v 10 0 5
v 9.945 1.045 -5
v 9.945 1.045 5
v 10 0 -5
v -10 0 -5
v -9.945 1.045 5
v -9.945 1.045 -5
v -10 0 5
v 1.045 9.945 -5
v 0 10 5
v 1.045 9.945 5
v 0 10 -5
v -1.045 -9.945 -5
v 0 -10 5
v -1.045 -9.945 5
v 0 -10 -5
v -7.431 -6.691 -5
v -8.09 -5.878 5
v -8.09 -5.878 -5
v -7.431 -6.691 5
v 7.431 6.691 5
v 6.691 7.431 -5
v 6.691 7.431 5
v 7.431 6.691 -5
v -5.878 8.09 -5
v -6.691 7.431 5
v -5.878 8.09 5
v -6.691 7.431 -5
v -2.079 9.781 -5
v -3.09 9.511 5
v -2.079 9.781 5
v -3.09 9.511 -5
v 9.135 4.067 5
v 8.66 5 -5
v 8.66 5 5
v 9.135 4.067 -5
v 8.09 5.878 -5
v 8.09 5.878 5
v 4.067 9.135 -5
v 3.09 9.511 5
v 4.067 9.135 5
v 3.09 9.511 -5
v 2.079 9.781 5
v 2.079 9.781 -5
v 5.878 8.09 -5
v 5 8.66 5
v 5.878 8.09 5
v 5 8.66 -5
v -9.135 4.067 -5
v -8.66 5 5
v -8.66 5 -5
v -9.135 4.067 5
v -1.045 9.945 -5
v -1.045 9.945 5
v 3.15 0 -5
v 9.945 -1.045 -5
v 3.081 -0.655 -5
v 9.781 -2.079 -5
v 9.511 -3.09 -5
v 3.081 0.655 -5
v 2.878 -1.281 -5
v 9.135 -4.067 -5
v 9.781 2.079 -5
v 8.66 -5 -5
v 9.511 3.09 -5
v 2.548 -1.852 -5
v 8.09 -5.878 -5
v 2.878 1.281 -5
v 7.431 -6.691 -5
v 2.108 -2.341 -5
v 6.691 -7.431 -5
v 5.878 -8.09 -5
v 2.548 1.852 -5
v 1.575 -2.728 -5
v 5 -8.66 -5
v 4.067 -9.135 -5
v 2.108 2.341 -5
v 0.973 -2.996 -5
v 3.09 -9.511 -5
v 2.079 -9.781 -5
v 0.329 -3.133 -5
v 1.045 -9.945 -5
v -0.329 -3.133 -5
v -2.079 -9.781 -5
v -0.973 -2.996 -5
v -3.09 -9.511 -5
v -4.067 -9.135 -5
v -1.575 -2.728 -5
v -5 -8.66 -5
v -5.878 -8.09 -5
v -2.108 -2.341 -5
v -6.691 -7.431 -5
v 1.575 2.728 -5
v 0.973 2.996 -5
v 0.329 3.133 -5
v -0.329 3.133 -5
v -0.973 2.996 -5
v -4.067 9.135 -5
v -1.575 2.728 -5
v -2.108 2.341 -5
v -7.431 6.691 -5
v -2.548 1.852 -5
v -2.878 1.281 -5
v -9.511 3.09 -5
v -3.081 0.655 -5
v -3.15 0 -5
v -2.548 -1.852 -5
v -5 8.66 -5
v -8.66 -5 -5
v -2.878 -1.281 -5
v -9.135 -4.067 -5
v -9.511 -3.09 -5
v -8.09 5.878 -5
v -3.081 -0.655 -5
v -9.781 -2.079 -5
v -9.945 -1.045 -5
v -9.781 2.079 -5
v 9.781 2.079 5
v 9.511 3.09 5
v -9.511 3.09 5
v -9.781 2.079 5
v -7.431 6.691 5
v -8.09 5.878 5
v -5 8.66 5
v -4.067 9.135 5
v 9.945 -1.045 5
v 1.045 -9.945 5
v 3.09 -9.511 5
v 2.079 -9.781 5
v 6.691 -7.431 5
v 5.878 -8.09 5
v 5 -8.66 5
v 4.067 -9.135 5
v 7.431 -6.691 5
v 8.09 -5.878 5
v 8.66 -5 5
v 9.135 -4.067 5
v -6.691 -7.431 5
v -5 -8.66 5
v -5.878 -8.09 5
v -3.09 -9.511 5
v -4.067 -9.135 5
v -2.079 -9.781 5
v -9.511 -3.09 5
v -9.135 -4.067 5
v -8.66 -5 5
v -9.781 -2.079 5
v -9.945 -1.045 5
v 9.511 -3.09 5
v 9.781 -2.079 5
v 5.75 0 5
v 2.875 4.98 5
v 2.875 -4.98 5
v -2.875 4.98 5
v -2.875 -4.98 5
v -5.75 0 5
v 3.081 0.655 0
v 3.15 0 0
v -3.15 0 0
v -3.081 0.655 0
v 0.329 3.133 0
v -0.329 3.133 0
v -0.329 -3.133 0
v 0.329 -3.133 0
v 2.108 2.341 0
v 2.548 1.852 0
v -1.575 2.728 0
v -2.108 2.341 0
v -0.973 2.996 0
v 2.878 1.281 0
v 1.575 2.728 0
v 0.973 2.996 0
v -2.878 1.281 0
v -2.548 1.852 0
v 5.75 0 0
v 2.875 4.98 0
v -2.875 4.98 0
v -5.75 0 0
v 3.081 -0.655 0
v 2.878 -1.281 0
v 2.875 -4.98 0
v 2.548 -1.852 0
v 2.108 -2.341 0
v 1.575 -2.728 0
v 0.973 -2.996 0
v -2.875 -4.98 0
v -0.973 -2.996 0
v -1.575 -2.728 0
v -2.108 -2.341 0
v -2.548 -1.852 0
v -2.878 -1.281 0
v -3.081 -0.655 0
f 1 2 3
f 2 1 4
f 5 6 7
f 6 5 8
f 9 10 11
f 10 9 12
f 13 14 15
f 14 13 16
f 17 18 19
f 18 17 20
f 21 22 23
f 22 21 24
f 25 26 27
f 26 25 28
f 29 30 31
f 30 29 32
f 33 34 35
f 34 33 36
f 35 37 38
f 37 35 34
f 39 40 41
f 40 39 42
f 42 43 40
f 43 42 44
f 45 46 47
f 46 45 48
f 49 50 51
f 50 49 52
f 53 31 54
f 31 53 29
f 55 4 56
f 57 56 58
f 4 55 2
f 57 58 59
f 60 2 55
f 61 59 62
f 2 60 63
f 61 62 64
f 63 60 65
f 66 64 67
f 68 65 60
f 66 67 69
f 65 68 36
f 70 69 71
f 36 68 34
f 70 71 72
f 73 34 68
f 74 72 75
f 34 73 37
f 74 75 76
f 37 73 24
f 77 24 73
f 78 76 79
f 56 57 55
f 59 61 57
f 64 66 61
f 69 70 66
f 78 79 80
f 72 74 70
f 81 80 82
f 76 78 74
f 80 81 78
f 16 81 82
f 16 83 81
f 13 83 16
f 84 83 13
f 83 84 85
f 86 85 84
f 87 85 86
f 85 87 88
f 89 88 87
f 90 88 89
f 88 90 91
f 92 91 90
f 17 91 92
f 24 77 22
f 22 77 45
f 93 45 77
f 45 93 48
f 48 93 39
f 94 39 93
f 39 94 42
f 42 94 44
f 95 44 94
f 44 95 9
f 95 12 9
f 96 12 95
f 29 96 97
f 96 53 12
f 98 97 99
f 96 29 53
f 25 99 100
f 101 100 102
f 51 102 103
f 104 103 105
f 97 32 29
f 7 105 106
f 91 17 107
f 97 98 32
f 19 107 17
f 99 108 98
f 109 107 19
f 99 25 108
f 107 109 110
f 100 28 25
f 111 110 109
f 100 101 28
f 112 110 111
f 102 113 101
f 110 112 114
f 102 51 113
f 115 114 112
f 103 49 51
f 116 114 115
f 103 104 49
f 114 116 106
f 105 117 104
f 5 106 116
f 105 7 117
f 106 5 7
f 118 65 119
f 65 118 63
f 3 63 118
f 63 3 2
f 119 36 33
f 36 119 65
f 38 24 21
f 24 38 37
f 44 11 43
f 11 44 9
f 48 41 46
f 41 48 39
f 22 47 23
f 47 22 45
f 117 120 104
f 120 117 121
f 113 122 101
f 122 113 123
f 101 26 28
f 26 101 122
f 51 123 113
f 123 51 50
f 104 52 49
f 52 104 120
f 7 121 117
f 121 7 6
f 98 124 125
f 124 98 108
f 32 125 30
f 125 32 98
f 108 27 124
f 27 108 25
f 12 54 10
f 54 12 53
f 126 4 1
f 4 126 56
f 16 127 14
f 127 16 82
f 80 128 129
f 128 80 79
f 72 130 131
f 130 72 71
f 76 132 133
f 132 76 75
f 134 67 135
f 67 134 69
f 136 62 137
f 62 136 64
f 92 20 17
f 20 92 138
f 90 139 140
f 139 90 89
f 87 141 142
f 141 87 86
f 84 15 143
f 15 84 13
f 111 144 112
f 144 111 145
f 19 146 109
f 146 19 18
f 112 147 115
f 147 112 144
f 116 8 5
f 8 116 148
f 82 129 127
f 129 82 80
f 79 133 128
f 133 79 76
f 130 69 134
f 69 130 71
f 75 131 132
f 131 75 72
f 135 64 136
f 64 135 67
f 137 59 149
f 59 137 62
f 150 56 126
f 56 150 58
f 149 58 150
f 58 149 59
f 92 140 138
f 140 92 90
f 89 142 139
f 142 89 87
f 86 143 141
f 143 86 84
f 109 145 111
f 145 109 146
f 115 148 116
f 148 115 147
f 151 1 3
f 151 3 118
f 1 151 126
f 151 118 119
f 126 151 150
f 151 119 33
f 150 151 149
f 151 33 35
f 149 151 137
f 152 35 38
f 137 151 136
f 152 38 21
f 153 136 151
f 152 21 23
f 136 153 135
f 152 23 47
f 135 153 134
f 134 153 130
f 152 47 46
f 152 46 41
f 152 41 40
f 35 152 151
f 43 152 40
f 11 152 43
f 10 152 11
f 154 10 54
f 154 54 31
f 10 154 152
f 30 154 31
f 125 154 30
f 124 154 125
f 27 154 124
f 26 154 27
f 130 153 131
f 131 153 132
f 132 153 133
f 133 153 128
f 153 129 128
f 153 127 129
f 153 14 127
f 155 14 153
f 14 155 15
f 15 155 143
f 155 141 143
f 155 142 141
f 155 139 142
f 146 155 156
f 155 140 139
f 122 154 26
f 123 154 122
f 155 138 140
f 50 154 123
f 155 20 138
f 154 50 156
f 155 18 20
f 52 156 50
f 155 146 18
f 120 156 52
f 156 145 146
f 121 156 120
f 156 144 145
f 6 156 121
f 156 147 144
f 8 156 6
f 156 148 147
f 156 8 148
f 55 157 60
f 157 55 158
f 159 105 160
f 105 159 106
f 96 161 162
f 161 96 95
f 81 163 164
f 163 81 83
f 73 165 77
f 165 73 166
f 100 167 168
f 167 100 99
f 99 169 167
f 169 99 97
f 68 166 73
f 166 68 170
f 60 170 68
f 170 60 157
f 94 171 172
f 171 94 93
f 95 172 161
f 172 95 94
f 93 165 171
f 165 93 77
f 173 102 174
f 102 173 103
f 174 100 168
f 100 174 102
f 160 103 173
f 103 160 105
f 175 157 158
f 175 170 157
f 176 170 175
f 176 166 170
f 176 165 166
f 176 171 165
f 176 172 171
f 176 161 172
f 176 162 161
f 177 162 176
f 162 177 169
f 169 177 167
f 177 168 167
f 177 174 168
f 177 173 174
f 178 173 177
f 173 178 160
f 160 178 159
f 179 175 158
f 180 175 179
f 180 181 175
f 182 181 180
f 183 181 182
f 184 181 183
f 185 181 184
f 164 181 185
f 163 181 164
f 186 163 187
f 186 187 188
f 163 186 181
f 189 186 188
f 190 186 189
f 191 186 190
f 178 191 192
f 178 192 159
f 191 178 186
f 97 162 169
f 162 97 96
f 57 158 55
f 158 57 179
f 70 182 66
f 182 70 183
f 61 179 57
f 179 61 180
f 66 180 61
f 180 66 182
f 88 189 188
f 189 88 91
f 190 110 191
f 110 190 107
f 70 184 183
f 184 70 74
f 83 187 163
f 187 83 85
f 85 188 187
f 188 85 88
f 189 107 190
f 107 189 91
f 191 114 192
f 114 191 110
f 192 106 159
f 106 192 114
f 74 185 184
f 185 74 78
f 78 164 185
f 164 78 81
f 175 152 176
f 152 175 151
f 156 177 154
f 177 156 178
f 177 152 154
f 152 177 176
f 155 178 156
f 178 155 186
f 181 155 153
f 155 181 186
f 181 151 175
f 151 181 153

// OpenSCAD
difference(){
   

//skrew outer frame    
cylinder(h = 10, d=20, $fn = 60, center = true);     



//skrew diameter
translate([0,0,-2.5]) cylinder(h = 5, d=6.3, $fn = 30, center = true); 
    
//hex skrew end
translate([0,0,2.5]) cylinder(h = 5, d=11.5, $fn = 6, center = true); 


}
